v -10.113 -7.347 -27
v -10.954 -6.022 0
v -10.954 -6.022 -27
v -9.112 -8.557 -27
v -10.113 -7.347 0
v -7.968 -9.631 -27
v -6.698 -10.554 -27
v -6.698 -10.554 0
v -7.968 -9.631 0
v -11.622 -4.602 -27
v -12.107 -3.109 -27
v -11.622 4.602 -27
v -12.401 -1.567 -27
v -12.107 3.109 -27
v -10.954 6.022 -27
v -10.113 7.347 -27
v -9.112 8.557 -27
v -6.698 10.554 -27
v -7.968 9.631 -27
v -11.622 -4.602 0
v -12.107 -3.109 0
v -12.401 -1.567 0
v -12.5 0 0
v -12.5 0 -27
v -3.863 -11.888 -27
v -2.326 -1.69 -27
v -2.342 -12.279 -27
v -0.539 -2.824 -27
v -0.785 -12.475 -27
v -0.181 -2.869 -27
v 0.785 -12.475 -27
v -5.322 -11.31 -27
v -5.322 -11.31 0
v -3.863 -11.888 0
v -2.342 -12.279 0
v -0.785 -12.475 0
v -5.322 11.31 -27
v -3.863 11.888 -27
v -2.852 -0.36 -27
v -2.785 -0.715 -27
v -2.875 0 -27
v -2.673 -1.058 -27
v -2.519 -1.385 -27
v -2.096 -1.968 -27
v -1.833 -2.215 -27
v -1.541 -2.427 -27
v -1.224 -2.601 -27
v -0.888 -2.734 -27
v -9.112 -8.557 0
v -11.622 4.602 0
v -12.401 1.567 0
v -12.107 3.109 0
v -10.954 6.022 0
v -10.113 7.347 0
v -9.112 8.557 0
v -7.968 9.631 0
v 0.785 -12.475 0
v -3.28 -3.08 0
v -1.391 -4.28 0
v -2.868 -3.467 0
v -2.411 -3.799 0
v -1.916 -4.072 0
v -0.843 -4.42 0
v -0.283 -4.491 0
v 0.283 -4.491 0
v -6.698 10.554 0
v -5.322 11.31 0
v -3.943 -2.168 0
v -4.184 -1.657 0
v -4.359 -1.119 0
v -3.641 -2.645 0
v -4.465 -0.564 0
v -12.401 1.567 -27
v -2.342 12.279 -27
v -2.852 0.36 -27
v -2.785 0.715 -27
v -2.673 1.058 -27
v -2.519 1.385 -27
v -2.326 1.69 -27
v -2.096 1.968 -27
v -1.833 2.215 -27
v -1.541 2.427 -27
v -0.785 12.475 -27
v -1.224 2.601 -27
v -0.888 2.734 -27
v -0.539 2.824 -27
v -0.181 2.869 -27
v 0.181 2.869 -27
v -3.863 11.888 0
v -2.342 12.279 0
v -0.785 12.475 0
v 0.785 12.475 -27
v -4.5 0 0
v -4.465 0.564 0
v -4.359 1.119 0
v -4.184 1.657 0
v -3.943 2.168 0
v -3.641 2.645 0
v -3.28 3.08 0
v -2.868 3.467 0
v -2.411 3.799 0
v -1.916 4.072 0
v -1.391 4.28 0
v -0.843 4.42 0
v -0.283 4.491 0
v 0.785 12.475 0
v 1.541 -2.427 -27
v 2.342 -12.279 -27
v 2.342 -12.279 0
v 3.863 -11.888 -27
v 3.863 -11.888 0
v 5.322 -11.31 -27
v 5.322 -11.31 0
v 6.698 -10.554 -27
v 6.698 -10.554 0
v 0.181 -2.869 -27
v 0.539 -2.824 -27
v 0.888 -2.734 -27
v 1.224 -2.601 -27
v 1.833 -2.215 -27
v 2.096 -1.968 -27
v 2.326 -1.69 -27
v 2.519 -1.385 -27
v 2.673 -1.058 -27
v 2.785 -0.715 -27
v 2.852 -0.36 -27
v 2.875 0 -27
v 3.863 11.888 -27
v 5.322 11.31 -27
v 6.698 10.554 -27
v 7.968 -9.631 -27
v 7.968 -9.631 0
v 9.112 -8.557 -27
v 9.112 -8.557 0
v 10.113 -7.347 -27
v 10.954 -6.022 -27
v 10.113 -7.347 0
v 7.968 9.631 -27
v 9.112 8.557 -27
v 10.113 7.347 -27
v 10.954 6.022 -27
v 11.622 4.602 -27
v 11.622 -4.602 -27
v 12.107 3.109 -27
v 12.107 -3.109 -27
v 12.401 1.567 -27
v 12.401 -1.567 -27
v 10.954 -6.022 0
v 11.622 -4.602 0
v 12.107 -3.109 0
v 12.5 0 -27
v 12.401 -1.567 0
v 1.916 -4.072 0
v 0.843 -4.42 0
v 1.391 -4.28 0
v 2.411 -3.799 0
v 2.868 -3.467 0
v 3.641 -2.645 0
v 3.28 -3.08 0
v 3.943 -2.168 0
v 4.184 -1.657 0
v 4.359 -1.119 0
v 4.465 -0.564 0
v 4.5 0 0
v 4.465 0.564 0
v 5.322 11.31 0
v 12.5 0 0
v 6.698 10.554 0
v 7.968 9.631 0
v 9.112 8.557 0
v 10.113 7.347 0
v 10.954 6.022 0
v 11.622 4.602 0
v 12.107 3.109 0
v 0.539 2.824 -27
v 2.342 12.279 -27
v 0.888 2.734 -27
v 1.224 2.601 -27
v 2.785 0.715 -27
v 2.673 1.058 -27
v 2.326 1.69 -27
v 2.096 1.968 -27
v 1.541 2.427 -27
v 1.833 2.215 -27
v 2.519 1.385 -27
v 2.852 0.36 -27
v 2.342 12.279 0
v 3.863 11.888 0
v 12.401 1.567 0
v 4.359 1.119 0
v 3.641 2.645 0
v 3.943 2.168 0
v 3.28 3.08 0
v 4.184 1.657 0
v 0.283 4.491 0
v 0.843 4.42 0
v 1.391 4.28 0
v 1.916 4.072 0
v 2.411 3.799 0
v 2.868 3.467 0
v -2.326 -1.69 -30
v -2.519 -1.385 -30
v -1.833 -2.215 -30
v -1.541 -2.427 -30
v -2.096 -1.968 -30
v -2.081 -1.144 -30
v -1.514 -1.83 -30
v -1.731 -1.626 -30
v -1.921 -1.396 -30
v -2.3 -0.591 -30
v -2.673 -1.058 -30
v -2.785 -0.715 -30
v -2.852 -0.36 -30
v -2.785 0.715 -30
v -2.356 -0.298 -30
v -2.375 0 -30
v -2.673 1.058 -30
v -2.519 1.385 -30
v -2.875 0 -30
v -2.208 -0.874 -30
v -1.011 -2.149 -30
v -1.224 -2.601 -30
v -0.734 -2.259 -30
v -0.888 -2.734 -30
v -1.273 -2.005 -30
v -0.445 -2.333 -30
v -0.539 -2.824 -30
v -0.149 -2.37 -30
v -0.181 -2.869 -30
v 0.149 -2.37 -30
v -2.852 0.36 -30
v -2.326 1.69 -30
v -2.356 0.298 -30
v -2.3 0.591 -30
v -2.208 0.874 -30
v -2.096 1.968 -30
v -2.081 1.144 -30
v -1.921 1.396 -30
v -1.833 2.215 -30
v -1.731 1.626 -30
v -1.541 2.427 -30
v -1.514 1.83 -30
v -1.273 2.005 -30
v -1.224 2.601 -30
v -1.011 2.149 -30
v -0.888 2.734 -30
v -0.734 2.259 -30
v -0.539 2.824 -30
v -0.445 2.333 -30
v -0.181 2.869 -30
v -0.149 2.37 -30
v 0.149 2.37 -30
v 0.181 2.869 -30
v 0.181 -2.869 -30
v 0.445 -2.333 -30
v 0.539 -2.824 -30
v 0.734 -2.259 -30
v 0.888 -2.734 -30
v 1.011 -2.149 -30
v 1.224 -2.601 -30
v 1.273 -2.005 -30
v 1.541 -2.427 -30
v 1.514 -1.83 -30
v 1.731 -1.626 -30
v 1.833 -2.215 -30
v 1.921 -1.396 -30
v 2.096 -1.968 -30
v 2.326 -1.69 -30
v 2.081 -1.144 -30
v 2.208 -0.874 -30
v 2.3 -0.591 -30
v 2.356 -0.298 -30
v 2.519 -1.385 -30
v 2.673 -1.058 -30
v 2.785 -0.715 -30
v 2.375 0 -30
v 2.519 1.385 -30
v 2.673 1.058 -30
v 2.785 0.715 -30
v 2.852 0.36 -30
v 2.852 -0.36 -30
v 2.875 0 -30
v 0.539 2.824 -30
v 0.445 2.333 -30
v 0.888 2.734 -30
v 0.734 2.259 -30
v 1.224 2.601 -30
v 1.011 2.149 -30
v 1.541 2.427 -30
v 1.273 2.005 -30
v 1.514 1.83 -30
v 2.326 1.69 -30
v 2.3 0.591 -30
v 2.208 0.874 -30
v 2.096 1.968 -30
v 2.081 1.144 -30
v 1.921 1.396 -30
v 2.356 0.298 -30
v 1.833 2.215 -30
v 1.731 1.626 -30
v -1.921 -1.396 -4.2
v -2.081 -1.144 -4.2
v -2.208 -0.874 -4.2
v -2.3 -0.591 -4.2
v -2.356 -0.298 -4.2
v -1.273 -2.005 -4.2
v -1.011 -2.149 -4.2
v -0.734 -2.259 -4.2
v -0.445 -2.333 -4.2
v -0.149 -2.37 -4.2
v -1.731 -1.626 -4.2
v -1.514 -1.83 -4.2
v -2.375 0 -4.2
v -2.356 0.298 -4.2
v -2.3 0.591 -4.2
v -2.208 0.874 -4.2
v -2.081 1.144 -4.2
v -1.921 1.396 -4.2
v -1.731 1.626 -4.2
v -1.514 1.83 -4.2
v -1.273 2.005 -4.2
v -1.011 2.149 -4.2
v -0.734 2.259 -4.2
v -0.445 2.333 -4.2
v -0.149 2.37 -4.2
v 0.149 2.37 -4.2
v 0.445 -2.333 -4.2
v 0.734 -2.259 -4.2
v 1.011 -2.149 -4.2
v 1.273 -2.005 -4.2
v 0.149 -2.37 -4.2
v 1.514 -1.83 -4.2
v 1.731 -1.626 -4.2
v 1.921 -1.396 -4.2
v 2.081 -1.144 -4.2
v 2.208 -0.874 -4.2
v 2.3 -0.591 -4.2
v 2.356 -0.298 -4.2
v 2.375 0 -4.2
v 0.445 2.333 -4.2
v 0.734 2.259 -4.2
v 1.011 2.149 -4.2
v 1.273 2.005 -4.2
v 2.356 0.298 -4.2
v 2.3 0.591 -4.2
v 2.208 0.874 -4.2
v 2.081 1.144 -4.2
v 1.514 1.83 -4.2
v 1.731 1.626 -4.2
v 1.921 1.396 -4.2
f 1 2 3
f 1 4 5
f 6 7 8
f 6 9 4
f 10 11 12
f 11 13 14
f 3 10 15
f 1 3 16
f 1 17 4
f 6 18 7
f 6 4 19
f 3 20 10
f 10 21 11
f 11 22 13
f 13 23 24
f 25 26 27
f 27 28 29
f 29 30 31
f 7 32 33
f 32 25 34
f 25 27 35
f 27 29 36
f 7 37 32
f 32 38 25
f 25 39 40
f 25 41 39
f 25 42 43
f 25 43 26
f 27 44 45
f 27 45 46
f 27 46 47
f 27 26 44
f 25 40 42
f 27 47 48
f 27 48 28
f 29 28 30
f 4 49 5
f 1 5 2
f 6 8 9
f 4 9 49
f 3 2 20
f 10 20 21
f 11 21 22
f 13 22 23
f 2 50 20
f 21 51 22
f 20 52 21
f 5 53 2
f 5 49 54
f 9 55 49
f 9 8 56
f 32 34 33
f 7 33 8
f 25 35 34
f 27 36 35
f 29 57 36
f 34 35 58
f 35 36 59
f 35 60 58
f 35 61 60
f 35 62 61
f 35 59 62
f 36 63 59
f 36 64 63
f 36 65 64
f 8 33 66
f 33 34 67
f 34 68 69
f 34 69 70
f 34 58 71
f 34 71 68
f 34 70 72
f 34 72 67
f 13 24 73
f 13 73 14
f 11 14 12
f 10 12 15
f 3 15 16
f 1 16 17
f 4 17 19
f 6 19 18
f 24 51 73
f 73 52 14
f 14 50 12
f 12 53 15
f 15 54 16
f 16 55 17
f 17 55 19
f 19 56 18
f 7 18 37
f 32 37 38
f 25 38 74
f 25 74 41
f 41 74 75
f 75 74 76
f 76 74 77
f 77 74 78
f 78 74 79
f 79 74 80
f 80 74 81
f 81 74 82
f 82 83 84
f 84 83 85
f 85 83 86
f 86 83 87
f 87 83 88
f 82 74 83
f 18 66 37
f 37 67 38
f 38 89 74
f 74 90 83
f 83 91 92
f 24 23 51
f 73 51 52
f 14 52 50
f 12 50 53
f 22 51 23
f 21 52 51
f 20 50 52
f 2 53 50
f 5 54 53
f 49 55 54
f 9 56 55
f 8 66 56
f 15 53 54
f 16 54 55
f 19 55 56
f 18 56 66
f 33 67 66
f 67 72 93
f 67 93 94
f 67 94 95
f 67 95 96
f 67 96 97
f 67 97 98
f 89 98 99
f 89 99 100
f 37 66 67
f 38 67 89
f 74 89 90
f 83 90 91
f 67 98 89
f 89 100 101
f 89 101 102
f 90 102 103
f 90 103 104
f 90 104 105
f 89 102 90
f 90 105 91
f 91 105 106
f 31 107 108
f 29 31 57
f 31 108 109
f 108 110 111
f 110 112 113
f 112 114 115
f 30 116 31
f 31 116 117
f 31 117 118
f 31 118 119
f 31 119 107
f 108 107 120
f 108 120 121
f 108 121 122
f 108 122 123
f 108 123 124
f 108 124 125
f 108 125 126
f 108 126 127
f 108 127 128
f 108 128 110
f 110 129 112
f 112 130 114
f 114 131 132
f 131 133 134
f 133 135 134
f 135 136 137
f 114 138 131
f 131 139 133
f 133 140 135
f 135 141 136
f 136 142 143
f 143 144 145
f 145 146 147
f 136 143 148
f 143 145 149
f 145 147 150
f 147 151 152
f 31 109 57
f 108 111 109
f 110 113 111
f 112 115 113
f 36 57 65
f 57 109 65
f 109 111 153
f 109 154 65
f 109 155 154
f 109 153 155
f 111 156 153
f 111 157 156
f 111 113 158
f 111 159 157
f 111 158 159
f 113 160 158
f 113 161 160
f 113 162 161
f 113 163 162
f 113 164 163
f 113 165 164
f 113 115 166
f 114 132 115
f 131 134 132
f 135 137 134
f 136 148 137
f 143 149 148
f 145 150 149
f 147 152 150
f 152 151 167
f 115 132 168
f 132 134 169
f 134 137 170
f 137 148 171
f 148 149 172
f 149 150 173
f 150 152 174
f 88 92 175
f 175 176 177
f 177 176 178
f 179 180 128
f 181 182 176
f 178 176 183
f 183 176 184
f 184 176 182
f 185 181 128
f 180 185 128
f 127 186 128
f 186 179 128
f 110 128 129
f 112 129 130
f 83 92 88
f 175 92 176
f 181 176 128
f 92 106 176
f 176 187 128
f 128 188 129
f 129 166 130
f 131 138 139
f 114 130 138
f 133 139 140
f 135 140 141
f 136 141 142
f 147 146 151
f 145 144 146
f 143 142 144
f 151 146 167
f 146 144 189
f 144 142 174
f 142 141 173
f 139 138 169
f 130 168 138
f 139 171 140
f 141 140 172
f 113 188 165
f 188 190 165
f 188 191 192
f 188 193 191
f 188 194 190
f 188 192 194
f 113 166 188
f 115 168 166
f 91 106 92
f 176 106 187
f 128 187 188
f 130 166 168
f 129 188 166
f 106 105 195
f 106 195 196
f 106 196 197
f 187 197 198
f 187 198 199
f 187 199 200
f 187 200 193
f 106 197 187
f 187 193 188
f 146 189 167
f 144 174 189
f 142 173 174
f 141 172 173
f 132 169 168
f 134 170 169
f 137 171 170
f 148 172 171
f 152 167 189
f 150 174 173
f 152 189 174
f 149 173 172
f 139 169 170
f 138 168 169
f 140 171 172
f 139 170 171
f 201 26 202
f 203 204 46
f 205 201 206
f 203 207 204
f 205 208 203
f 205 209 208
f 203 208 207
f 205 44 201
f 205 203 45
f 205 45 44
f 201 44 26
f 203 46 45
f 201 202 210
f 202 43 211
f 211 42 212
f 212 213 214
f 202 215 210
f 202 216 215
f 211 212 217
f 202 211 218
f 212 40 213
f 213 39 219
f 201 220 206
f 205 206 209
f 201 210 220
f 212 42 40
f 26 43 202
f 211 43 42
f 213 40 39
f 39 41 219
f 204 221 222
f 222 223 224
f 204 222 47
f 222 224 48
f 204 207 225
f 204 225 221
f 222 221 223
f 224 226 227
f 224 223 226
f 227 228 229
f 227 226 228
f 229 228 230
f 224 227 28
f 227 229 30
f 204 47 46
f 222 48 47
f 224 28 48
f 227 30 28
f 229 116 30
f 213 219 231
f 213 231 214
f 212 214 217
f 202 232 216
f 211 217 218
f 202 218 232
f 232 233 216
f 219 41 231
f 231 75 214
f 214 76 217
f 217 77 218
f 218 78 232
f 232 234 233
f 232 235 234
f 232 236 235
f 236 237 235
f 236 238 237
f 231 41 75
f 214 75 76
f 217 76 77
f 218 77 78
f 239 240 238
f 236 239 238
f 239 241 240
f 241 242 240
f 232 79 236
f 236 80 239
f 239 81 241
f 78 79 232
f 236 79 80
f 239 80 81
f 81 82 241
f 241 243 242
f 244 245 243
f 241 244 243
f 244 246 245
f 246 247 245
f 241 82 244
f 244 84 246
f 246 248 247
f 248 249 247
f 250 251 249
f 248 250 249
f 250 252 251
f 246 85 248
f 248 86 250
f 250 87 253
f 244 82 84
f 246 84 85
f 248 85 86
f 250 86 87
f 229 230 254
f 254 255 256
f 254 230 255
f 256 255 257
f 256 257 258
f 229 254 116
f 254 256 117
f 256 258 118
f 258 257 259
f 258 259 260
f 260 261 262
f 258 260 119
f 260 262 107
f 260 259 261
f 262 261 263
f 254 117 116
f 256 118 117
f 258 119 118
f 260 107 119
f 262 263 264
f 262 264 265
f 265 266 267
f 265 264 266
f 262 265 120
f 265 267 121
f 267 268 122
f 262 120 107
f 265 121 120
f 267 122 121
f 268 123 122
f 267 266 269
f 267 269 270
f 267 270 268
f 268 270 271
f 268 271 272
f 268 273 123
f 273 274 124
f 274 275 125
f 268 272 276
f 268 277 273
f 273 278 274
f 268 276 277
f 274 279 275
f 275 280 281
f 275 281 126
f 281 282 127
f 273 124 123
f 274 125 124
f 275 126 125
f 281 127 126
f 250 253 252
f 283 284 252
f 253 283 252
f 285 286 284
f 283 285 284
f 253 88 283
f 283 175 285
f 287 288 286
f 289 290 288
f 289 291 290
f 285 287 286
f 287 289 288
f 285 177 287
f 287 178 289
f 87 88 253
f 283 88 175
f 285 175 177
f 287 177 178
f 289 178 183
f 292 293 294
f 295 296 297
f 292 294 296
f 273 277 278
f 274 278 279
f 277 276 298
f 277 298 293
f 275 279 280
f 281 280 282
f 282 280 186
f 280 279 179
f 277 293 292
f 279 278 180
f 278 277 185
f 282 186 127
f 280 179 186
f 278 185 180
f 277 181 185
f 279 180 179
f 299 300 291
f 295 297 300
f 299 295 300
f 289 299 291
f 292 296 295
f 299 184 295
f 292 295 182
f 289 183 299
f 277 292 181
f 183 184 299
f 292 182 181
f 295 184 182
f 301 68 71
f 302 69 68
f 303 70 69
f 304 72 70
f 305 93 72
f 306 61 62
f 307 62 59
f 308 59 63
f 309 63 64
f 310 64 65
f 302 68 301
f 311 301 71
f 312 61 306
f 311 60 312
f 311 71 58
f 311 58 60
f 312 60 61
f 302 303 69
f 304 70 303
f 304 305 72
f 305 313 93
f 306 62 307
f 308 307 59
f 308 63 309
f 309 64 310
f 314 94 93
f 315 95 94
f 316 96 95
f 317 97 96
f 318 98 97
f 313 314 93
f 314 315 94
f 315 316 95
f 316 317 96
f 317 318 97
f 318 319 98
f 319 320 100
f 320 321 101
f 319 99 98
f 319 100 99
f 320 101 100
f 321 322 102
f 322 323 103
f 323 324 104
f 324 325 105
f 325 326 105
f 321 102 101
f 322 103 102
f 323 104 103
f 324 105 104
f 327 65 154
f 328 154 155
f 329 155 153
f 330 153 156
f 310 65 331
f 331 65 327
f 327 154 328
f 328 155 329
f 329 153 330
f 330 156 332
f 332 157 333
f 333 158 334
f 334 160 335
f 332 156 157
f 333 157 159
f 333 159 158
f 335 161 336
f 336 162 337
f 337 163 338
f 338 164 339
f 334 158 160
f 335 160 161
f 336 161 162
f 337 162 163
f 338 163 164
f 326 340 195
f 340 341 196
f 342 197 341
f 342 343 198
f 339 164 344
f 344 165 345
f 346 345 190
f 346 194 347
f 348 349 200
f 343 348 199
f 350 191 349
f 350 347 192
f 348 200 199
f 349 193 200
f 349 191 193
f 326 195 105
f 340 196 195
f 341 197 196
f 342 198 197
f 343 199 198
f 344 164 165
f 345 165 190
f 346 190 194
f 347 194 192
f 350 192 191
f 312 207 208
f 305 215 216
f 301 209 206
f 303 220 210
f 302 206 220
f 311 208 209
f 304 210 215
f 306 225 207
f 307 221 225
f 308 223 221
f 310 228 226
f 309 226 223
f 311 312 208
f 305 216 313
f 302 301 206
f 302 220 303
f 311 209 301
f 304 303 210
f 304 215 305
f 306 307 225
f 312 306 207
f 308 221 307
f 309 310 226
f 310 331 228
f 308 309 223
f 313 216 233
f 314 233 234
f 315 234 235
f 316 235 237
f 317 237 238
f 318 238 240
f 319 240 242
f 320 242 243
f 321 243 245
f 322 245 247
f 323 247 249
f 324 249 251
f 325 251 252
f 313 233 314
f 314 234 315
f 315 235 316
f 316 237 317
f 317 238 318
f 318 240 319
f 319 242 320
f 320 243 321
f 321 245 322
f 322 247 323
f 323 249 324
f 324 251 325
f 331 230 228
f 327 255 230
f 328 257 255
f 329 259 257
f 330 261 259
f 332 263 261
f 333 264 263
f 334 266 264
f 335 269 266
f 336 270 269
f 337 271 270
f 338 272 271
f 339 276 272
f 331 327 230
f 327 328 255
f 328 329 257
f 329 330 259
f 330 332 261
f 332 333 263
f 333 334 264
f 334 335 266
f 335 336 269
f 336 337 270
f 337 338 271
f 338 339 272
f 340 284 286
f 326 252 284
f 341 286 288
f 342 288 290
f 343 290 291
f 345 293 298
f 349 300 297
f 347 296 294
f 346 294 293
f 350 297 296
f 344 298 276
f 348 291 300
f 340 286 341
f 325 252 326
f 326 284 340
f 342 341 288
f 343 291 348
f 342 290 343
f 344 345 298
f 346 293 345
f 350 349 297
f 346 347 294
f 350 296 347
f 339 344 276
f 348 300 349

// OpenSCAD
$fn = 50;

difference() {
	union() {
		translate(v = [0, 0, -27.0]) {
			cylinder(h = 27, r = 12.5);
		}
		#translate(v = [0, 0, -30.0]) {
			cylinder(h = 30, r = 2.875);
		}
	}
	union() {
		translate(v = [0, 0, 0]) {
			rotate(a = [0, 0, 0]) {
				difference() {
					union() {
						translate(v = [0, 0, -30.0]) {
							cylinder(h = 30, r = 2.25);
						}
						translate(v = [0, 0, -4.2]) {
							cylinder(h = 4.2, r1 = 2.375, r2 = 4.5);
						}
						translate(v = [0, 0, -30.0]) {
							cylinder(h = 30, r = 2.375);
						}
						translate(v = [0, 0, -30.0]) {
							cylinder(h = 30, r = 2.25);
						}
					}
					union();
				}
			}
		}
	}
}
